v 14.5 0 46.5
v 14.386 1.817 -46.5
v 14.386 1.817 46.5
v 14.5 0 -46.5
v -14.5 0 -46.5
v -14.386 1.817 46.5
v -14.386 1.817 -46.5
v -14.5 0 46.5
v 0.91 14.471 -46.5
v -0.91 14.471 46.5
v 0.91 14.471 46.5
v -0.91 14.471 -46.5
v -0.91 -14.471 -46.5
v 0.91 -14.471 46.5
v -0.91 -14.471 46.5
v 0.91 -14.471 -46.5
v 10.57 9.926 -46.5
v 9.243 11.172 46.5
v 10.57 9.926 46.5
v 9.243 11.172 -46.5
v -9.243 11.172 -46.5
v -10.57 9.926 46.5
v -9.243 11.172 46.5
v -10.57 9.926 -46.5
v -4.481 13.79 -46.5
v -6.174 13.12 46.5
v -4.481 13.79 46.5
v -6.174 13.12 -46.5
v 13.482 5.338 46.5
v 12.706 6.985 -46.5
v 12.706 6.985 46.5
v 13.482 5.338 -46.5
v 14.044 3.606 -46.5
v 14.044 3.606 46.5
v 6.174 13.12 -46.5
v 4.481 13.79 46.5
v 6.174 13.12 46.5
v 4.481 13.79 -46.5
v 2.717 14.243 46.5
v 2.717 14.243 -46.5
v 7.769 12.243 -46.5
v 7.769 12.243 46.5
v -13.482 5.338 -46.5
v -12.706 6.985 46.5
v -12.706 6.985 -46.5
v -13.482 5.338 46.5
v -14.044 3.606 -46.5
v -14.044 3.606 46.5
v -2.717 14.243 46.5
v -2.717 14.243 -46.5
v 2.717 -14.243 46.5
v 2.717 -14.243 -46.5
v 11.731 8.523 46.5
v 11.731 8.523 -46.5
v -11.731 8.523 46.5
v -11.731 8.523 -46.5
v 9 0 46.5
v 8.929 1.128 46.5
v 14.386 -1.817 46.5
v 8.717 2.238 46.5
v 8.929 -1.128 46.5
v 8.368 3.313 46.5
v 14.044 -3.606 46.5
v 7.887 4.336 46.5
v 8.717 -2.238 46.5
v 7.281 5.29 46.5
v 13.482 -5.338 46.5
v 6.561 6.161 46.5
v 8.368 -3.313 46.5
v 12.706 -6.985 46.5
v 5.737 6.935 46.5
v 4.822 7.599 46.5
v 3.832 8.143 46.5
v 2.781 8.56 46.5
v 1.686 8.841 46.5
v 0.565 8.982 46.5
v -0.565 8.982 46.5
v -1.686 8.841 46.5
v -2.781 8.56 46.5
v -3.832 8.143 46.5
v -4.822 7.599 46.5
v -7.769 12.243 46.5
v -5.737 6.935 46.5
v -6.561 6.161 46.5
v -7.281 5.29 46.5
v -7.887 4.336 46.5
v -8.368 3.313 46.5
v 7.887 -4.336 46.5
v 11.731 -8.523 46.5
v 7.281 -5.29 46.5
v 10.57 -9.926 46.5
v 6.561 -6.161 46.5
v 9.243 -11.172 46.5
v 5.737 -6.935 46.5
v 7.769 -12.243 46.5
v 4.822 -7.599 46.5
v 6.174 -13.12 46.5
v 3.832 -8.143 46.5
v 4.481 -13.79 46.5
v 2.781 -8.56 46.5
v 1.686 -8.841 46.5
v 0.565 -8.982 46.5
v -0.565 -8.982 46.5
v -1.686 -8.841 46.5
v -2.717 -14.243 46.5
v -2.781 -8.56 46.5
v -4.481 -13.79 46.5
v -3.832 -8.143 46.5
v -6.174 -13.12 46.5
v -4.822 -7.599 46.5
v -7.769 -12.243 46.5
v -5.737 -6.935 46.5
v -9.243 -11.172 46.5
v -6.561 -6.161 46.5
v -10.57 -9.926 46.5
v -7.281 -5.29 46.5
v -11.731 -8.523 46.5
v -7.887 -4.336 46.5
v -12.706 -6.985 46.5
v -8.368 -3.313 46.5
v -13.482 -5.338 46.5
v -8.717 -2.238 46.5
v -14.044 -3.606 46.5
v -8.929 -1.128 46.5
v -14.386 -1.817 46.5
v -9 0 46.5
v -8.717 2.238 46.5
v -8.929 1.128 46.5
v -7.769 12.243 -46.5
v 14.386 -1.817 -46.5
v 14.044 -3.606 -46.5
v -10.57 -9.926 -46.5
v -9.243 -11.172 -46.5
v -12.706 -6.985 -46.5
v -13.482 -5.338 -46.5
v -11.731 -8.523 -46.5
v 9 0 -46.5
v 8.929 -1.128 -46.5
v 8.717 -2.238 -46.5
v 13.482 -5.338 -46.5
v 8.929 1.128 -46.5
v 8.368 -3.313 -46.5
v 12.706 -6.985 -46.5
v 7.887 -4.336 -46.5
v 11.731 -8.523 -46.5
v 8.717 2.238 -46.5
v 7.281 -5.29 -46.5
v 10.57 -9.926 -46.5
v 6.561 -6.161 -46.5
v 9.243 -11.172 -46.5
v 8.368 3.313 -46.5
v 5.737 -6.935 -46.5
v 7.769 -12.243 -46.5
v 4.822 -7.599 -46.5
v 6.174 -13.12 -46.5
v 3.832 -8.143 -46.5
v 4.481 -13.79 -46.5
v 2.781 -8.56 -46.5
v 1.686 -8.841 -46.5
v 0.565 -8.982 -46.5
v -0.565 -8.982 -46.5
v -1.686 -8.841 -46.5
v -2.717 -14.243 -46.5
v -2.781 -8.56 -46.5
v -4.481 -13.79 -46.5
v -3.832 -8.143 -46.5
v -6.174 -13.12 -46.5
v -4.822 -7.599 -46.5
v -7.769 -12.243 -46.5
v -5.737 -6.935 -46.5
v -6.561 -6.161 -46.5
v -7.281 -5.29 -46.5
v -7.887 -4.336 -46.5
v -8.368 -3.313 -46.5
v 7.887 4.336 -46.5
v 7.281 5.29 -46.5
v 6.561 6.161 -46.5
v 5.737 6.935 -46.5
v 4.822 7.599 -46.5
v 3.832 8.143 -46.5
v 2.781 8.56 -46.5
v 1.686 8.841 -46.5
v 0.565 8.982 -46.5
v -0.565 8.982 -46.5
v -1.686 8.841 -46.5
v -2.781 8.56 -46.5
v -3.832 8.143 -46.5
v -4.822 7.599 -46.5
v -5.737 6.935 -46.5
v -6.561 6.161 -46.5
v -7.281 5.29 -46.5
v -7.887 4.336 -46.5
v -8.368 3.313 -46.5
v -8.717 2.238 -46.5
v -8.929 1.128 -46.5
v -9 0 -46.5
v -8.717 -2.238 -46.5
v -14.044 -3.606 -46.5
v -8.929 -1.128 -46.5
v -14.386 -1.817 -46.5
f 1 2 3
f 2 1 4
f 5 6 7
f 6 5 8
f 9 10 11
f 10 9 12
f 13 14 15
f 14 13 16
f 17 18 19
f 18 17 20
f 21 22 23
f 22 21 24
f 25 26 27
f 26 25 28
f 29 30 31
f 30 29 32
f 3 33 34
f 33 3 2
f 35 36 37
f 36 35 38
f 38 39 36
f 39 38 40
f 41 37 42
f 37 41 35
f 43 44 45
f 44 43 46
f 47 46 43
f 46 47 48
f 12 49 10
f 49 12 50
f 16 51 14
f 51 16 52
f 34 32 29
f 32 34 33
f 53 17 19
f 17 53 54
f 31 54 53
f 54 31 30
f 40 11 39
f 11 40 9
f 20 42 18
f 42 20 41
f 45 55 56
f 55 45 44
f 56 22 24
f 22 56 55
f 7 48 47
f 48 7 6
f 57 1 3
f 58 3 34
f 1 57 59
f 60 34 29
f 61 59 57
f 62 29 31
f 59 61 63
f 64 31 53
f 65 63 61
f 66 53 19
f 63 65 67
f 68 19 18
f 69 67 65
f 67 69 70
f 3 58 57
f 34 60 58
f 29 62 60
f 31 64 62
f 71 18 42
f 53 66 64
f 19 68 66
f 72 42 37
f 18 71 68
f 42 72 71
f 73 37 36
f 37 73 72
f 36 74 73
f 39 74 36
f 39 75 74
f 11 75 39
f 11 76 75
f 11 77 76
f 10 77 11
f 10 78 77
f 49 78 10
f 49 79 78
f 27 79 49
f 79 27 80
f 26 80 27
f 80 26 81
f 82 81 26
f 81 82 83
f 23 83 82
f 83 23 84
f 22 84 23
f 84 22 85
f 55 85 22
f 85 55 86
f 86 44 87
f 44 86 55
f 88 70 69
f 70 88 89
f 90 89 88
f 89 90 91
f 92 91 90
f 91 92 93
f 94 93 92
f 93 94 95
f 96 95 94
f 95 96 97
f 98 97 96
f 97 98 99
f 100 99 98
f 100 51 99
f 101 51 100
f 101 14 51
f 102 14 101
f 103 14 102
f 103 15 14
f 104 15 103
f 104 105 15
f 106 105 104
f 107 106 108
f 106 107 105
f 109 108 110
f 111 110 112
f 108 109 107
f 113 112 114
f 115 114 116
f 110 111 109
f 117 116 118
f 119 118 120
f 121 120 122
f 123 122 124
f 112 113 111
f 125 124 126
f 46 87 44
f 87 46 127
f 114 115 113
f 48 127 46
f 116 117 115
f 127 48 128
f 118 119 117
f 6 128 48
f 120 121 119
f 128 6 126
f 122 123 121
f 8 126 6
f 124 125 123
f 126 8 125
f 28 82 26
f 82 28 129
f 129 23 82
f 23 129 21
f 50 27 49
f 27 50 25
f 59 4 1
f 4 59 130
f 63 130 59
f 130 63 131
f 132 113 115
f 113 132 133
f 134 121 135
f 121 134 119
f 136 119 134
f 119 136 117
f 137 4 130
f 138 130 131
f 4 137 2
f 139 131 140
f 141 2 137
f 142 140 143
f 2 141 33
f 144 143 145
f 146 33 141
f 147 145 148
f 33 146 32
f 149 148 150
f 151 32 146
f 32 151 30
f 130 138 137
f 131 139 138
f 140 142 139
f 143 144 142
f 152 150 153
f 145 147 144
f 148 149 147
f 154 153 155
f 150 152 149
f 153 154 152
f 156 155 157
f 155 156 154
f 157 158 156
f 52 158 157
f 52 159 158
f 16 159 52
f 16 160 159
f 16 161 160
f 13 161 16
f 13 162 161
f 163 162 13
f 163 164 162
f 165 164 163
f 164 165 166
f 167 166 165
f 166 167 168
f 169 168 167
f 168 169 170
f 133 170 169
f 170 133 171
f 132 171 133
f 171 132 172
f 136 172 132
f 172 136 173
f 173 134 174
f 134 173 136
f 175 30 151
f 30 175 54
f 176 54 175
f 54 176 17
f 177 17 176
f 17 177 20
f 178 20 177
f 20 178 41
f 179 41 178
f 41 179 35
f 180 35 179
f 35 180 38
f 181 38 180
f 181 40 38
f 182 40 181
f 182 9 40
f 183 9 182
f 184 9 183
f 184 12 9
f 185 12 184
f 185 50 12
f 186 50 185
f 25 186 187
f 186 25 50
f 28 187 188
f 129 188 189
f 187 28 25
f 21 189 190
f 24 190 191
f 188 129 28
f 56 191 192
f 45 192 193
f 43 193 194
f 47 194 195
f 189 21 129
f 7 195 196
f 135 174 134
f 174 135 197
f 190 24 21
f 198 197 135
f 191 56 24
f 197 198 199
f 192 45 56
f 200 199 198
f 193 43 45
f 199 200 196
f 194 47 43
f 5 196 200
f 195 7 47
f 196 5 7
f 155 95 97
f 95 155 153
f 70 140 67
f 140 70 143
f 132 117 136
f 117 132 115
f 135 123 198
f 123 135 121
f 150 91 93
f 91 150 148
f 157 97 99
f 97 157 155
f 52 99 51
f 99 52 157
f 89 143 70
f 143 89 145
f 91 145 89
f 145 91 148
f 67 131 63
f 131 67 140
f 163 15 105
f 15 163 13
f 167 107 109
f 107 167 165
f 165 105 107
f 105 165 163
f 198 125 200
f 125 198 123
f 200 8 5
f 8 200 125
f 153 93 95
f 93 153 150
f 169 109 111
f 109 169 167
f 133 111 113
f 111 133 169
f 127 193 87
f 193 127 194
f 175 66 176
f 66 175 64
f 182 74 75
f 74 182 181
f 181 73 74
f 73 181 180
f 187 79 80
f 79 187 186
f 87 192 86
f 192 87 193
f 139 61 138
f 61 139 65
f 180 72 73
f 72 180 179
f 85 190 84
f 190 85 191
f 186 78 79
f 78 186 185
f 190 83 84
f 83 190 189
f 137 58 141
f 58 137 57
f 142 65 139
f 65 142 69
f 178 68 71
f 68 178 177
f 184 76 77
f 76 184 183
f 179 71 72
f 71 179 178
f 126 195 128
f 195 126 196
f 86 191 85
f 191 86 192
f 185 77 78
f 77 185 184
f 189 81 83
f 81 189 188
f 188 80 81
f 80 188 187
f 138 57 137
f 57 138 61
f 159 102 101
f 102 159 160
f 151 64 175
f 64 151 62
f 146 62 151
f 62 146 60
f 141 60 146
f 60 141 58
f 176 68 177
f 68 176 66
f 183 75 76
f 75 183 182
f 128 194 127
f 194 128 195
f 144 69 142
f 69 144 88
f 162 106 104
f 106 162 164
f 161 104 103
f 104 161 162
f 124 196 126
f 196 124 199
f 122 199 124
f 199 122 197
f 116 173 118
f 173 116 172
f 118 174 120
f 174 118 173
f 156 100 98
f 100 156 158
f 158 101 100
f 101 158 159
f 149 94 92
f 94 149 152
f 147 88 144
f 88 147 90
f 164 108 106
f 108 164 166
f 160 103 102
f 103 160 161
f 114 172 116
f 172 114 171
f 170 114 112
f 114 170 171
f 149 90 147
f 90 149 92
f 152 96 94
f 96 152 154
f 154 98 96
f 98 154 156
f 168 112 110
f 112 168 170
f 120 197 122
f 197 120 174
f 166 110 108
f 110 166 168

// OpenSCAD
$fn = 50;


difference() {
	union() {
		translate(v = [0, 0, -46.5000000000]) {
			cylinder(h = 93, r = 14.5000000000);
		}
	}
	union() {
		translate(v = [0, 0, -100.0000000000]) {
			cylinder(h = 200, r = 9);
		}
	}
}
